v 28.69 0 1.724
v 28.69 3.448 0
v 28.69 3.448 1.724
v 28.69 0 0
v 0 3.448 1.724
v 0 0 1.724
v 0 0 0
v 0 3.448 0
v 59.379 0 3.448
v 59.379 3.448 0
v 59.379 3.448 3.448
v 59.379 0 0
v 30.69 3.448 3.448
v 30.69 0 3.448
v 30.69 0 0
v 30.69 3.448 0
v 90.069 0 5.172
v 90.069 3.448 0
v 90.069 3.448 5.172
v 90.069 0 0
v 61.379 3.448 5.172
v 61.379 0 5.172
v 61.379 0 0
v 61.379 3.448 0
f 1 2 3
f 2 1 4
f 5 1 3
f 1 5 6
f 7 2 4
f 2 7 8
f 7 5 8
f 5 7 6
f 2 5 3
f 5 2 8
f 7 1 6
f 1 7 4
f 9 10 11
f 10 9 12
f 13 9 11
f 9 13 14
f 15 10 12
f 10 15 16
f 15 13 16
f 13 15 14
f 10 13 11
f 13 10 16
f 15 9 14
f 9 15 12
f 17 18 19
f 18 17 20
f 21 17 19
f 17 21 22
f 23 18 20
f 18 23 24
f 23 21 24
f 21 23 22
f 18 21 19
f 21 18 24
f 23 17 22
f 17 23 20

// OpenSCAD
/*
 * PROMPT: H0 scale (1:87) PRL-era police station entrance steps, flat print layout.
 * Three concrete step slabs laid side by side with 2 mm gaps for printing.
 * Step 0 is thinnest (one riser height), step 2 is thickest (three riser heights).
 */

$fn = 32;

S       = 1/87;

door_w  = 1800*S;    //  20.7 mm
step_h  = 150*S;     //   1.7 mm
step_d  = 300*S;     //   3.4 mm

sw      = door_w + 8; // step width = 28.7 mm

module steps() {
    for (i = [0:2]) {
        translate([i*(sw+2), 0, 0])
            cube([sw, step_d, (i+1)*step_h]);
    }
}

steps();
